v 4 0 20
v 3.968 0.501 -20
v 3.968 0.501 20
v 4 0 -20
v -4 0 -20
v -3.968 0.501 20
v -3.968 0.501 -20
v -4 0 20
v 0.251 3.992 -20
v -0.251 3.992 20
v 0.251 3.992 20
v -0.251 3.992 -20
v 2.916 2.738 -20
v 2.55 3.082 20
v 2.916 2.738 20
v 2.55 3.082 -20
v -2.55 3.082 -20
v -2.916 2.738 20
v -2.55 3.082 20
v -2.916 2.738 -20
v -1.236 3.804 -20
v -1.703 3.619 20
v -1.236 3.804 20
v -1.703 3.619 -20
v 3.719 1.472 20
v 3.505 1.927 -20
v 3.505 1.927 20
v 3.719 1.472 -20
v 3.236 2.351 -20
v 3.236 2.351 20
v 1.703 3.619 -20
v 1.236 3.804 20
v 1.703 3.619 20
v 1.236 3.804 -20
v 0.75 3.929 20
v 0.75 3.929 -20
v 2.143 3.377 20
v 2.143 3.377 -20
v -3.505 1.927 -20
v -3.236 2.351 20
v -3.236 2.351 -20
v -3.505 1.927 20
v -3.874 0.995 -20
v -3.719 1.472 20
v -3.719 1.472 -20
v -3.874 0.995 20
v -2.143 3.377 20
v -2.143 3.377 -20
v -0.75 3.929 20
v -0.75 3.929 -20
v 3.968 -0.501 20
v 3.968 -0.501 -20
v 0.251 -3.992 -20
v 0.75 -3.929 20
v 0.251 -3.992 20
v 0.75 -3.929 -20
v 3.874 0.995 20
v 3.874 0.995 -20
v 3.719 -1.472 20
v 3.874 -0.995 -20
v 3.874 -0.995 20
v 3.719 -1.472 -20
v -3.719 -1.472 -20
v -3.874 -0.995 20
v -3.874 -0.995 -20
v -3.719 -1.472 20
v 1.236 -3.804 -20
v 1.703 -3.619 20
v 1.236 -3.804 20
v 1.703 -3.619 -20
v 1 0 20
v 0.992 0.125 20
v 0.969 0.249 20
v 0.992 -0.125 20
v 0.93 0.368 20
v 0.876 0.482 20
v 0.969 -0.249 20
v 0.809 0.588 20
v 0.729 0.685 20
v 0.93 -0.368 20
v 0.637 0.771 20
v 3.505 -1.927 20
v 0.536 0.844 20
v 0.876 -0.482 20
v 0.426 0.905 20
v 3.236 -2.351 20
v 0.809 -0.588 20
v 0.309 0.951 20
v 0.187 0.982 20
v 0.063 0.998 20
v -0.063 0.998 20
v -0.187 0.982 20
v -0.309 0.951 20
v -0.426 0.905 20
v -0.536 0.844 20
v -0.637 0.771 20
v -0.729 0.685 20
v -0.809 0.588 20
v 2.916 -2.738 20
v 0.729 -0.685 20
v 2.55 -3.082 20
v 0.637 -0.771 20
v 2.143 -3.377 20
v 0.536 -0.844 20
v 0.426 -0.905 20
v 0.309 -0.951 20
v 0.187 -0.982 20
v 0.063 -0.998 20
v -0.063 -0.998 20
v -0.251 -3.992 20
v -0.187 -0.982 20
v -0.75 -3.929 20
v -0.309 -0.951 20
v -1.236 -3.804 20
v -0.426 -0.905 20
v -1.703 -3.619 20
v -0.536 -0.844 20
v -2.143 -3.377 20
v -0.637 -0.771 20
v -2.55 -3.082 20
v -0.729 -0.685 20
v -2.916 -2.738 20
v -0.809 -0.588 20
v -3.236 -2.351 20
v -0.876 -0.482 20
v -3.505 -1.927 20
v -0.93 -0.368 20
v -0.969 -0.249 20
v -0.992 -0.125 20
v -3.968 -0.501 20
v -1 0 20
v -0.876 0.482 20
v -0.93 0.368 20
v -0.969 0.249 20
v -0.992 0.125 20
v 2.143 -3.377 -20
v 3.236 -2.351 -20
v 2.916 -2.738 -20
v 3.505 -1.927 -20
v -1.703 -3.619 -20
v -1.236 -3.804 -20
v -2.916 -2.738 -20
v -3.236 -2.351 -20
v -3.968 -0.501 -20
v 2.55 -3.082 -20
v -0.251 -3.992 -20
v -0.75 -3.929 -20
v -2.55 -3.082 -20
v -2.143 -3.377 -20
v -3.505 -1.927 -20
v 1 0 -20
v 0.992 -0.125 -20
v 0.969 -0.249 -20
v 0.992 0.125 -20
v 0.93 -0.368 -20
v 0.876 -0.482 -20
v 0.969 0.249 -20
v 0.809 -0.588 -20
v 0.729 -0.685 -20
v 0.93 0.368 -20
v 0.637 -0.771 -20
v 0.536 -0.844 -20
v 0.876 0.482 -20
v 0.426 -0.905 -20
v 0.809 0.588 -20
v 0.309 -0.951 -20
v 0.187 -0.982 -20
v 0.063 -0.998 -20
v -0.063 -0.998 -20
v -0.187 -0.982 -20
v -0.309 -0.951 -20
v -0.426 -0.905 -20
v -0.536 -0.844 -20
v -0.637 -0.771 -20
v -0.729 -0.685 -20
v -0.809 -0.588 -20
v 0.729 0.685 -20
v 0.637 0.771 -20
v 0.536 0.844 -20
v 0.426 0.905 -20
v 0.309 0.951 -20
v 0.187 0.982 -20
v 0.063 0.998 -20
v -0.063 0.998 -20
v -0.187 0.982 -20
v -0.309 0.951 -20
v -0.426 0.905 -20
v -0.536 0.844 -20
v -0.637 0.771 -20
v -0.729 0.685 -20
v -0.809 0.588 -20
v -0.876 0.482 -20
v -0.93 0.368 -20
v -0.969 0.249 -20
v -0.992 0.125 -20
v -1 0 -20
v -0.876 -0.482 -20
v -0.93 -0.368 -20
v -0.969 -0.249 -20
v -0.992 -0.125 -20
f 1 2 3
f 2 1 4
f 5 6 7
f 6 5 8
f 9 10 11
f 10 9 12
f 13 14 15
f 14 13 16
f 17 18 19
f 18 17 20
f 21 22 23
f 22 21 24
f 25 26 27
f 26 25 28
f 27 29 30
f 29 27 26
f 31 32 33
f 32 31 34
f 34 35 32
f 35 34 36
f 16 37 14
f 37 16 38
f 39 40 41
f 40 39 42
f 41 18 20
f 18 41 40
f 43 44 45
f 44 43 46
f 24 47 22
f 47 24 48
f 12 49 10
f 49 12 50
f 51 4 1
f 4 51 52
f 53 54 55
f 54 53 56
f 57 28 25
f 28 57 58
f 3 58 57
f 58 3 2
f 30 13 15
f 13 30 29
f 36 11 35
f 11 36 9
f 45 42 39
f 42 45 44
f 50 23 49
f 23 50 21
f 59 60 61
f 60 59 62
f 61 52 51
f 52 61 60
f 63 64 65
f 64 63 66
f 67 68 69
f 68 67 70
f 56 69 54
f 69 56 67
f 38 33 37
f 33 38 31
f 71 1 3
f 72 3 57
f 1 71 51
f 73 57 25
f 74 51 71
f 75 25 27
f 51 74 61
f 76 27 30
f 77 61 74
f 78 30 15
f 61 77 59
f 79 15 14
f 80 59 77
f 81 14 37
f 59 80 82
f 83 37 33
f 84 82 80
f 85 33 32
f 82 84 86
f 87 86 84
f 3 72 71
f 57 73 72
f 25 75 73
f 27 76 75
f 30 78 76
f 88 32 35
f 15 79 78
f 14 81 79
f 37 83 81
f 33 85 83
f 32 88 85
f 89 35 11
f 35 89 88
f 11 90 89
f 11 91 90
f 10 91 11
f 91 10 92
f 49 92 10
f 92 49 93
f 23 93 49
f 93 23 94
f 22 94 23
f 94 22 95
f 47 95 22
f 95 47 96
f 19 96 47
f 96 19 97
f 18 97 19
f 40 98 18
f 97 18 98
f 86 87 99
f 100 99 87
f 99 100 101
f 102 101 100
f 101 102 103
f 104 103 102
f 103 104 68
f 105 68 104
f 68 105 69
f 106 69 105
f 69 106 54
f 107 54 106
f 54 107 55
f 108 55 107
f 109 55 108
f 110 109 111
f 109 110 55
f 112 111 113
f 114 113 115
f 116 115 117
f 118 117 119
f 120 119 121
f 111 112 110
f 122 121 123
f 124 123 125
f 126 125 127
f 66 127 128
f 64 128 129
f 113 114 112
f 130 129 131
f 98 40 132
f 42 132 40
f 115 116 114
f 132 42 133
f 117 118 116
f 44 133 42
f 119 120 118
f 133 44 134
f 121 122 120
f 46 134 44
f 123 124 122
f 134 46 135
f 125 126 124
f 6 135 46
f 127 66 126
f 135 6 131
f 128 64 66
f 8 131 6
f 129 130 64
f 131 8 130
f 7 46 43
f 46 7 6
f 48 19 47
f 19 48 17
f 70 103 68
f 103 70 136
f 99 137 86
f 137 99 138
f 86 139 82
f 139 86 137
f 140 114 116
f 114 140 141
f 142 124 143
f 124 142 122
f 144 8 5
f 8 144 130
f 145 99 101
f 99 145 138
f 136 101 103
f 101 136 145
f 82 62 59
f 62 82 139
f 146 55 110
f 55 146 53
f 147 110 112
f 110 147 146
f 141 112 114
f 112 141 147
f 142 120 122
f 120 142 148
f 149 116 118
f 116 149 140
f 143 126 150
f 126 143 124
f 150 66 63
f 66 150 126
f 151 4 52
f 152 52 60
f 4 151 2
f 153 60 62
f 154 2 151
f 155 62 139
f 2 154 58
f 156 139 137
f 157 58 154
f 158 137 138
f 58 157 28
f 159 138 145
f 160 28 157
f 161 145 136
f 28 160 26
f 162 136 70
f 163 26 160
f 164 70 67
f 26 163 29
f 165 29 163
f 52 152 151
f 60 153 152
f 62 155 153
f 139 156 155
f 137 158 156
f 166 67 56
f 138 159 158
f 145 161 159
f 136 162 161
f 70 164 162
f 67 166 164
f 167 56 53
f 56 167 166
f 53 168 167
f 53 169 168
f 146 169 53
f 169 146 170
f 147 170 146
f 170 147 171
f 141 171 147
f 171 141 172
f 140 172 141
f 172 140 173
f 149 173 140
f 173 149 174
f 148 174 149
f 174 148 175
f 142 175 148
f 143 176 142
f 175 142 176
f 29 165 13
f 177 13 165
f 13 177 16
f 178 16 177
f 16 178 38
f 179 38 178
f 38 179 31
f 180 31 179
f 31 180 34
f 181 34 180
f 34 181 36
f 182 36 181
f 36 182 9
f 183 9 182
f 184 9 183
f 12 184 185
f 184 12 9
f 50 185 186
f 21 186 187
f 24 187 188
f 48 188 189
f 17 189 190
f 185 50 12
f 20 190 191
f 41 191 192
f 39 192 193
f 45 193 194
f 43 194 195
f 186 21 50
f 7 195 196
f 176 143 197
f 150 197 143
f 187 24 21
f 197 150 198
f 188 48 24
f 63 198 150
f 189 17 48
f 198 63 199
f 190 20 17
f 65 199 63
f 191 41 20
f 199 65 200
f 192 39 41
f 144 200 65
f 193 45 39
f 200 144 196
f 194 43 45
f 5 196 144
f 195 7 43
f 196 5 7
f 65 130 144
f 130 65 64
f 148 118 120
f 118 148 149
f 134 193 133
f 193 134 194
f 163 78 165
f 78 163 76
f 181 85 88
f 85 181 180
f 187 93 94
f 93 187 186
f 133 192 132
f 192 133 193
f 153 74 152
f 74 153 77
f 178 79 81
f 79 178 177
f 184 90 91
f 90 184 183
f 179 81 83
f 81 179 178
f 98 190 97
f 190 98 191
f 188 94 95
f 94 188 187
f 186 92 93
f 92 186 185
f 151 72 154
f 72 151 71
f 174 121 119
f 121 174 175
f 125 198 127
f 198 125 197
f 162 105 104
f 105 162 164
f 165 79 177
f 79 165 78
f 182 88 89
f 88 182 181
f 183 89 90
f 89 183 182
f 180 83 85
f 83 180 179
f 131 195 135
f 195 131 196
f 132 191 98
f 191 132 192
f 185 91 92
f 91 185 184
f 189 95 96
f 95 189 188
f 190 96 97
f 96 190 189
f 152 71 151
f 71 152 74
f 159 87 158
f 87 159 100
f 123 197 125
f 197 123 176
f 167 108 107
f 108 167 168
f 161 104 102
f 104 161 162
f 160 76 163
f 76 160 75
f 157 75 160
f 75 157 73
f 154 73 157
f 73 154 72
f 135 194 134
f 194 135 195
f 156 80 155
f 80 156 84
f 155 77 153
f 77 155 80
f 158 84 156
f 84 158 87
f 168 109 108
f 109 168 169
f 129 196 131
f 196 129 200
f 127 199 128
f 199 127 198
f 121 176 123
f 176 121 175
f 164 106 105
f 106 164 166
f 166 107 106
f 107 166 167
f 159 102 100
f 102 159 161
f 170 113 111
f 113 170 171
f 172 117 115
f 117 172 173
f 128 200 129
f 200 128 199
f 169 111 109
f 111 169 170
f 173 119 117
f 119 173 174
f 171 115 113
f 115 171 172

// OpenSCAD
$fn = 50;


difference() {
	union() {
		translate(v = [0, 0, -20.0000000000]) {
			cylinder(h = 40, r = 4.0000000000);
		}
	}
	union() {
		translate(v = [0, 0, -100.0000000000]) {
			cylinder(h = 200, r = 1.0000000000);
		}
	}
}
